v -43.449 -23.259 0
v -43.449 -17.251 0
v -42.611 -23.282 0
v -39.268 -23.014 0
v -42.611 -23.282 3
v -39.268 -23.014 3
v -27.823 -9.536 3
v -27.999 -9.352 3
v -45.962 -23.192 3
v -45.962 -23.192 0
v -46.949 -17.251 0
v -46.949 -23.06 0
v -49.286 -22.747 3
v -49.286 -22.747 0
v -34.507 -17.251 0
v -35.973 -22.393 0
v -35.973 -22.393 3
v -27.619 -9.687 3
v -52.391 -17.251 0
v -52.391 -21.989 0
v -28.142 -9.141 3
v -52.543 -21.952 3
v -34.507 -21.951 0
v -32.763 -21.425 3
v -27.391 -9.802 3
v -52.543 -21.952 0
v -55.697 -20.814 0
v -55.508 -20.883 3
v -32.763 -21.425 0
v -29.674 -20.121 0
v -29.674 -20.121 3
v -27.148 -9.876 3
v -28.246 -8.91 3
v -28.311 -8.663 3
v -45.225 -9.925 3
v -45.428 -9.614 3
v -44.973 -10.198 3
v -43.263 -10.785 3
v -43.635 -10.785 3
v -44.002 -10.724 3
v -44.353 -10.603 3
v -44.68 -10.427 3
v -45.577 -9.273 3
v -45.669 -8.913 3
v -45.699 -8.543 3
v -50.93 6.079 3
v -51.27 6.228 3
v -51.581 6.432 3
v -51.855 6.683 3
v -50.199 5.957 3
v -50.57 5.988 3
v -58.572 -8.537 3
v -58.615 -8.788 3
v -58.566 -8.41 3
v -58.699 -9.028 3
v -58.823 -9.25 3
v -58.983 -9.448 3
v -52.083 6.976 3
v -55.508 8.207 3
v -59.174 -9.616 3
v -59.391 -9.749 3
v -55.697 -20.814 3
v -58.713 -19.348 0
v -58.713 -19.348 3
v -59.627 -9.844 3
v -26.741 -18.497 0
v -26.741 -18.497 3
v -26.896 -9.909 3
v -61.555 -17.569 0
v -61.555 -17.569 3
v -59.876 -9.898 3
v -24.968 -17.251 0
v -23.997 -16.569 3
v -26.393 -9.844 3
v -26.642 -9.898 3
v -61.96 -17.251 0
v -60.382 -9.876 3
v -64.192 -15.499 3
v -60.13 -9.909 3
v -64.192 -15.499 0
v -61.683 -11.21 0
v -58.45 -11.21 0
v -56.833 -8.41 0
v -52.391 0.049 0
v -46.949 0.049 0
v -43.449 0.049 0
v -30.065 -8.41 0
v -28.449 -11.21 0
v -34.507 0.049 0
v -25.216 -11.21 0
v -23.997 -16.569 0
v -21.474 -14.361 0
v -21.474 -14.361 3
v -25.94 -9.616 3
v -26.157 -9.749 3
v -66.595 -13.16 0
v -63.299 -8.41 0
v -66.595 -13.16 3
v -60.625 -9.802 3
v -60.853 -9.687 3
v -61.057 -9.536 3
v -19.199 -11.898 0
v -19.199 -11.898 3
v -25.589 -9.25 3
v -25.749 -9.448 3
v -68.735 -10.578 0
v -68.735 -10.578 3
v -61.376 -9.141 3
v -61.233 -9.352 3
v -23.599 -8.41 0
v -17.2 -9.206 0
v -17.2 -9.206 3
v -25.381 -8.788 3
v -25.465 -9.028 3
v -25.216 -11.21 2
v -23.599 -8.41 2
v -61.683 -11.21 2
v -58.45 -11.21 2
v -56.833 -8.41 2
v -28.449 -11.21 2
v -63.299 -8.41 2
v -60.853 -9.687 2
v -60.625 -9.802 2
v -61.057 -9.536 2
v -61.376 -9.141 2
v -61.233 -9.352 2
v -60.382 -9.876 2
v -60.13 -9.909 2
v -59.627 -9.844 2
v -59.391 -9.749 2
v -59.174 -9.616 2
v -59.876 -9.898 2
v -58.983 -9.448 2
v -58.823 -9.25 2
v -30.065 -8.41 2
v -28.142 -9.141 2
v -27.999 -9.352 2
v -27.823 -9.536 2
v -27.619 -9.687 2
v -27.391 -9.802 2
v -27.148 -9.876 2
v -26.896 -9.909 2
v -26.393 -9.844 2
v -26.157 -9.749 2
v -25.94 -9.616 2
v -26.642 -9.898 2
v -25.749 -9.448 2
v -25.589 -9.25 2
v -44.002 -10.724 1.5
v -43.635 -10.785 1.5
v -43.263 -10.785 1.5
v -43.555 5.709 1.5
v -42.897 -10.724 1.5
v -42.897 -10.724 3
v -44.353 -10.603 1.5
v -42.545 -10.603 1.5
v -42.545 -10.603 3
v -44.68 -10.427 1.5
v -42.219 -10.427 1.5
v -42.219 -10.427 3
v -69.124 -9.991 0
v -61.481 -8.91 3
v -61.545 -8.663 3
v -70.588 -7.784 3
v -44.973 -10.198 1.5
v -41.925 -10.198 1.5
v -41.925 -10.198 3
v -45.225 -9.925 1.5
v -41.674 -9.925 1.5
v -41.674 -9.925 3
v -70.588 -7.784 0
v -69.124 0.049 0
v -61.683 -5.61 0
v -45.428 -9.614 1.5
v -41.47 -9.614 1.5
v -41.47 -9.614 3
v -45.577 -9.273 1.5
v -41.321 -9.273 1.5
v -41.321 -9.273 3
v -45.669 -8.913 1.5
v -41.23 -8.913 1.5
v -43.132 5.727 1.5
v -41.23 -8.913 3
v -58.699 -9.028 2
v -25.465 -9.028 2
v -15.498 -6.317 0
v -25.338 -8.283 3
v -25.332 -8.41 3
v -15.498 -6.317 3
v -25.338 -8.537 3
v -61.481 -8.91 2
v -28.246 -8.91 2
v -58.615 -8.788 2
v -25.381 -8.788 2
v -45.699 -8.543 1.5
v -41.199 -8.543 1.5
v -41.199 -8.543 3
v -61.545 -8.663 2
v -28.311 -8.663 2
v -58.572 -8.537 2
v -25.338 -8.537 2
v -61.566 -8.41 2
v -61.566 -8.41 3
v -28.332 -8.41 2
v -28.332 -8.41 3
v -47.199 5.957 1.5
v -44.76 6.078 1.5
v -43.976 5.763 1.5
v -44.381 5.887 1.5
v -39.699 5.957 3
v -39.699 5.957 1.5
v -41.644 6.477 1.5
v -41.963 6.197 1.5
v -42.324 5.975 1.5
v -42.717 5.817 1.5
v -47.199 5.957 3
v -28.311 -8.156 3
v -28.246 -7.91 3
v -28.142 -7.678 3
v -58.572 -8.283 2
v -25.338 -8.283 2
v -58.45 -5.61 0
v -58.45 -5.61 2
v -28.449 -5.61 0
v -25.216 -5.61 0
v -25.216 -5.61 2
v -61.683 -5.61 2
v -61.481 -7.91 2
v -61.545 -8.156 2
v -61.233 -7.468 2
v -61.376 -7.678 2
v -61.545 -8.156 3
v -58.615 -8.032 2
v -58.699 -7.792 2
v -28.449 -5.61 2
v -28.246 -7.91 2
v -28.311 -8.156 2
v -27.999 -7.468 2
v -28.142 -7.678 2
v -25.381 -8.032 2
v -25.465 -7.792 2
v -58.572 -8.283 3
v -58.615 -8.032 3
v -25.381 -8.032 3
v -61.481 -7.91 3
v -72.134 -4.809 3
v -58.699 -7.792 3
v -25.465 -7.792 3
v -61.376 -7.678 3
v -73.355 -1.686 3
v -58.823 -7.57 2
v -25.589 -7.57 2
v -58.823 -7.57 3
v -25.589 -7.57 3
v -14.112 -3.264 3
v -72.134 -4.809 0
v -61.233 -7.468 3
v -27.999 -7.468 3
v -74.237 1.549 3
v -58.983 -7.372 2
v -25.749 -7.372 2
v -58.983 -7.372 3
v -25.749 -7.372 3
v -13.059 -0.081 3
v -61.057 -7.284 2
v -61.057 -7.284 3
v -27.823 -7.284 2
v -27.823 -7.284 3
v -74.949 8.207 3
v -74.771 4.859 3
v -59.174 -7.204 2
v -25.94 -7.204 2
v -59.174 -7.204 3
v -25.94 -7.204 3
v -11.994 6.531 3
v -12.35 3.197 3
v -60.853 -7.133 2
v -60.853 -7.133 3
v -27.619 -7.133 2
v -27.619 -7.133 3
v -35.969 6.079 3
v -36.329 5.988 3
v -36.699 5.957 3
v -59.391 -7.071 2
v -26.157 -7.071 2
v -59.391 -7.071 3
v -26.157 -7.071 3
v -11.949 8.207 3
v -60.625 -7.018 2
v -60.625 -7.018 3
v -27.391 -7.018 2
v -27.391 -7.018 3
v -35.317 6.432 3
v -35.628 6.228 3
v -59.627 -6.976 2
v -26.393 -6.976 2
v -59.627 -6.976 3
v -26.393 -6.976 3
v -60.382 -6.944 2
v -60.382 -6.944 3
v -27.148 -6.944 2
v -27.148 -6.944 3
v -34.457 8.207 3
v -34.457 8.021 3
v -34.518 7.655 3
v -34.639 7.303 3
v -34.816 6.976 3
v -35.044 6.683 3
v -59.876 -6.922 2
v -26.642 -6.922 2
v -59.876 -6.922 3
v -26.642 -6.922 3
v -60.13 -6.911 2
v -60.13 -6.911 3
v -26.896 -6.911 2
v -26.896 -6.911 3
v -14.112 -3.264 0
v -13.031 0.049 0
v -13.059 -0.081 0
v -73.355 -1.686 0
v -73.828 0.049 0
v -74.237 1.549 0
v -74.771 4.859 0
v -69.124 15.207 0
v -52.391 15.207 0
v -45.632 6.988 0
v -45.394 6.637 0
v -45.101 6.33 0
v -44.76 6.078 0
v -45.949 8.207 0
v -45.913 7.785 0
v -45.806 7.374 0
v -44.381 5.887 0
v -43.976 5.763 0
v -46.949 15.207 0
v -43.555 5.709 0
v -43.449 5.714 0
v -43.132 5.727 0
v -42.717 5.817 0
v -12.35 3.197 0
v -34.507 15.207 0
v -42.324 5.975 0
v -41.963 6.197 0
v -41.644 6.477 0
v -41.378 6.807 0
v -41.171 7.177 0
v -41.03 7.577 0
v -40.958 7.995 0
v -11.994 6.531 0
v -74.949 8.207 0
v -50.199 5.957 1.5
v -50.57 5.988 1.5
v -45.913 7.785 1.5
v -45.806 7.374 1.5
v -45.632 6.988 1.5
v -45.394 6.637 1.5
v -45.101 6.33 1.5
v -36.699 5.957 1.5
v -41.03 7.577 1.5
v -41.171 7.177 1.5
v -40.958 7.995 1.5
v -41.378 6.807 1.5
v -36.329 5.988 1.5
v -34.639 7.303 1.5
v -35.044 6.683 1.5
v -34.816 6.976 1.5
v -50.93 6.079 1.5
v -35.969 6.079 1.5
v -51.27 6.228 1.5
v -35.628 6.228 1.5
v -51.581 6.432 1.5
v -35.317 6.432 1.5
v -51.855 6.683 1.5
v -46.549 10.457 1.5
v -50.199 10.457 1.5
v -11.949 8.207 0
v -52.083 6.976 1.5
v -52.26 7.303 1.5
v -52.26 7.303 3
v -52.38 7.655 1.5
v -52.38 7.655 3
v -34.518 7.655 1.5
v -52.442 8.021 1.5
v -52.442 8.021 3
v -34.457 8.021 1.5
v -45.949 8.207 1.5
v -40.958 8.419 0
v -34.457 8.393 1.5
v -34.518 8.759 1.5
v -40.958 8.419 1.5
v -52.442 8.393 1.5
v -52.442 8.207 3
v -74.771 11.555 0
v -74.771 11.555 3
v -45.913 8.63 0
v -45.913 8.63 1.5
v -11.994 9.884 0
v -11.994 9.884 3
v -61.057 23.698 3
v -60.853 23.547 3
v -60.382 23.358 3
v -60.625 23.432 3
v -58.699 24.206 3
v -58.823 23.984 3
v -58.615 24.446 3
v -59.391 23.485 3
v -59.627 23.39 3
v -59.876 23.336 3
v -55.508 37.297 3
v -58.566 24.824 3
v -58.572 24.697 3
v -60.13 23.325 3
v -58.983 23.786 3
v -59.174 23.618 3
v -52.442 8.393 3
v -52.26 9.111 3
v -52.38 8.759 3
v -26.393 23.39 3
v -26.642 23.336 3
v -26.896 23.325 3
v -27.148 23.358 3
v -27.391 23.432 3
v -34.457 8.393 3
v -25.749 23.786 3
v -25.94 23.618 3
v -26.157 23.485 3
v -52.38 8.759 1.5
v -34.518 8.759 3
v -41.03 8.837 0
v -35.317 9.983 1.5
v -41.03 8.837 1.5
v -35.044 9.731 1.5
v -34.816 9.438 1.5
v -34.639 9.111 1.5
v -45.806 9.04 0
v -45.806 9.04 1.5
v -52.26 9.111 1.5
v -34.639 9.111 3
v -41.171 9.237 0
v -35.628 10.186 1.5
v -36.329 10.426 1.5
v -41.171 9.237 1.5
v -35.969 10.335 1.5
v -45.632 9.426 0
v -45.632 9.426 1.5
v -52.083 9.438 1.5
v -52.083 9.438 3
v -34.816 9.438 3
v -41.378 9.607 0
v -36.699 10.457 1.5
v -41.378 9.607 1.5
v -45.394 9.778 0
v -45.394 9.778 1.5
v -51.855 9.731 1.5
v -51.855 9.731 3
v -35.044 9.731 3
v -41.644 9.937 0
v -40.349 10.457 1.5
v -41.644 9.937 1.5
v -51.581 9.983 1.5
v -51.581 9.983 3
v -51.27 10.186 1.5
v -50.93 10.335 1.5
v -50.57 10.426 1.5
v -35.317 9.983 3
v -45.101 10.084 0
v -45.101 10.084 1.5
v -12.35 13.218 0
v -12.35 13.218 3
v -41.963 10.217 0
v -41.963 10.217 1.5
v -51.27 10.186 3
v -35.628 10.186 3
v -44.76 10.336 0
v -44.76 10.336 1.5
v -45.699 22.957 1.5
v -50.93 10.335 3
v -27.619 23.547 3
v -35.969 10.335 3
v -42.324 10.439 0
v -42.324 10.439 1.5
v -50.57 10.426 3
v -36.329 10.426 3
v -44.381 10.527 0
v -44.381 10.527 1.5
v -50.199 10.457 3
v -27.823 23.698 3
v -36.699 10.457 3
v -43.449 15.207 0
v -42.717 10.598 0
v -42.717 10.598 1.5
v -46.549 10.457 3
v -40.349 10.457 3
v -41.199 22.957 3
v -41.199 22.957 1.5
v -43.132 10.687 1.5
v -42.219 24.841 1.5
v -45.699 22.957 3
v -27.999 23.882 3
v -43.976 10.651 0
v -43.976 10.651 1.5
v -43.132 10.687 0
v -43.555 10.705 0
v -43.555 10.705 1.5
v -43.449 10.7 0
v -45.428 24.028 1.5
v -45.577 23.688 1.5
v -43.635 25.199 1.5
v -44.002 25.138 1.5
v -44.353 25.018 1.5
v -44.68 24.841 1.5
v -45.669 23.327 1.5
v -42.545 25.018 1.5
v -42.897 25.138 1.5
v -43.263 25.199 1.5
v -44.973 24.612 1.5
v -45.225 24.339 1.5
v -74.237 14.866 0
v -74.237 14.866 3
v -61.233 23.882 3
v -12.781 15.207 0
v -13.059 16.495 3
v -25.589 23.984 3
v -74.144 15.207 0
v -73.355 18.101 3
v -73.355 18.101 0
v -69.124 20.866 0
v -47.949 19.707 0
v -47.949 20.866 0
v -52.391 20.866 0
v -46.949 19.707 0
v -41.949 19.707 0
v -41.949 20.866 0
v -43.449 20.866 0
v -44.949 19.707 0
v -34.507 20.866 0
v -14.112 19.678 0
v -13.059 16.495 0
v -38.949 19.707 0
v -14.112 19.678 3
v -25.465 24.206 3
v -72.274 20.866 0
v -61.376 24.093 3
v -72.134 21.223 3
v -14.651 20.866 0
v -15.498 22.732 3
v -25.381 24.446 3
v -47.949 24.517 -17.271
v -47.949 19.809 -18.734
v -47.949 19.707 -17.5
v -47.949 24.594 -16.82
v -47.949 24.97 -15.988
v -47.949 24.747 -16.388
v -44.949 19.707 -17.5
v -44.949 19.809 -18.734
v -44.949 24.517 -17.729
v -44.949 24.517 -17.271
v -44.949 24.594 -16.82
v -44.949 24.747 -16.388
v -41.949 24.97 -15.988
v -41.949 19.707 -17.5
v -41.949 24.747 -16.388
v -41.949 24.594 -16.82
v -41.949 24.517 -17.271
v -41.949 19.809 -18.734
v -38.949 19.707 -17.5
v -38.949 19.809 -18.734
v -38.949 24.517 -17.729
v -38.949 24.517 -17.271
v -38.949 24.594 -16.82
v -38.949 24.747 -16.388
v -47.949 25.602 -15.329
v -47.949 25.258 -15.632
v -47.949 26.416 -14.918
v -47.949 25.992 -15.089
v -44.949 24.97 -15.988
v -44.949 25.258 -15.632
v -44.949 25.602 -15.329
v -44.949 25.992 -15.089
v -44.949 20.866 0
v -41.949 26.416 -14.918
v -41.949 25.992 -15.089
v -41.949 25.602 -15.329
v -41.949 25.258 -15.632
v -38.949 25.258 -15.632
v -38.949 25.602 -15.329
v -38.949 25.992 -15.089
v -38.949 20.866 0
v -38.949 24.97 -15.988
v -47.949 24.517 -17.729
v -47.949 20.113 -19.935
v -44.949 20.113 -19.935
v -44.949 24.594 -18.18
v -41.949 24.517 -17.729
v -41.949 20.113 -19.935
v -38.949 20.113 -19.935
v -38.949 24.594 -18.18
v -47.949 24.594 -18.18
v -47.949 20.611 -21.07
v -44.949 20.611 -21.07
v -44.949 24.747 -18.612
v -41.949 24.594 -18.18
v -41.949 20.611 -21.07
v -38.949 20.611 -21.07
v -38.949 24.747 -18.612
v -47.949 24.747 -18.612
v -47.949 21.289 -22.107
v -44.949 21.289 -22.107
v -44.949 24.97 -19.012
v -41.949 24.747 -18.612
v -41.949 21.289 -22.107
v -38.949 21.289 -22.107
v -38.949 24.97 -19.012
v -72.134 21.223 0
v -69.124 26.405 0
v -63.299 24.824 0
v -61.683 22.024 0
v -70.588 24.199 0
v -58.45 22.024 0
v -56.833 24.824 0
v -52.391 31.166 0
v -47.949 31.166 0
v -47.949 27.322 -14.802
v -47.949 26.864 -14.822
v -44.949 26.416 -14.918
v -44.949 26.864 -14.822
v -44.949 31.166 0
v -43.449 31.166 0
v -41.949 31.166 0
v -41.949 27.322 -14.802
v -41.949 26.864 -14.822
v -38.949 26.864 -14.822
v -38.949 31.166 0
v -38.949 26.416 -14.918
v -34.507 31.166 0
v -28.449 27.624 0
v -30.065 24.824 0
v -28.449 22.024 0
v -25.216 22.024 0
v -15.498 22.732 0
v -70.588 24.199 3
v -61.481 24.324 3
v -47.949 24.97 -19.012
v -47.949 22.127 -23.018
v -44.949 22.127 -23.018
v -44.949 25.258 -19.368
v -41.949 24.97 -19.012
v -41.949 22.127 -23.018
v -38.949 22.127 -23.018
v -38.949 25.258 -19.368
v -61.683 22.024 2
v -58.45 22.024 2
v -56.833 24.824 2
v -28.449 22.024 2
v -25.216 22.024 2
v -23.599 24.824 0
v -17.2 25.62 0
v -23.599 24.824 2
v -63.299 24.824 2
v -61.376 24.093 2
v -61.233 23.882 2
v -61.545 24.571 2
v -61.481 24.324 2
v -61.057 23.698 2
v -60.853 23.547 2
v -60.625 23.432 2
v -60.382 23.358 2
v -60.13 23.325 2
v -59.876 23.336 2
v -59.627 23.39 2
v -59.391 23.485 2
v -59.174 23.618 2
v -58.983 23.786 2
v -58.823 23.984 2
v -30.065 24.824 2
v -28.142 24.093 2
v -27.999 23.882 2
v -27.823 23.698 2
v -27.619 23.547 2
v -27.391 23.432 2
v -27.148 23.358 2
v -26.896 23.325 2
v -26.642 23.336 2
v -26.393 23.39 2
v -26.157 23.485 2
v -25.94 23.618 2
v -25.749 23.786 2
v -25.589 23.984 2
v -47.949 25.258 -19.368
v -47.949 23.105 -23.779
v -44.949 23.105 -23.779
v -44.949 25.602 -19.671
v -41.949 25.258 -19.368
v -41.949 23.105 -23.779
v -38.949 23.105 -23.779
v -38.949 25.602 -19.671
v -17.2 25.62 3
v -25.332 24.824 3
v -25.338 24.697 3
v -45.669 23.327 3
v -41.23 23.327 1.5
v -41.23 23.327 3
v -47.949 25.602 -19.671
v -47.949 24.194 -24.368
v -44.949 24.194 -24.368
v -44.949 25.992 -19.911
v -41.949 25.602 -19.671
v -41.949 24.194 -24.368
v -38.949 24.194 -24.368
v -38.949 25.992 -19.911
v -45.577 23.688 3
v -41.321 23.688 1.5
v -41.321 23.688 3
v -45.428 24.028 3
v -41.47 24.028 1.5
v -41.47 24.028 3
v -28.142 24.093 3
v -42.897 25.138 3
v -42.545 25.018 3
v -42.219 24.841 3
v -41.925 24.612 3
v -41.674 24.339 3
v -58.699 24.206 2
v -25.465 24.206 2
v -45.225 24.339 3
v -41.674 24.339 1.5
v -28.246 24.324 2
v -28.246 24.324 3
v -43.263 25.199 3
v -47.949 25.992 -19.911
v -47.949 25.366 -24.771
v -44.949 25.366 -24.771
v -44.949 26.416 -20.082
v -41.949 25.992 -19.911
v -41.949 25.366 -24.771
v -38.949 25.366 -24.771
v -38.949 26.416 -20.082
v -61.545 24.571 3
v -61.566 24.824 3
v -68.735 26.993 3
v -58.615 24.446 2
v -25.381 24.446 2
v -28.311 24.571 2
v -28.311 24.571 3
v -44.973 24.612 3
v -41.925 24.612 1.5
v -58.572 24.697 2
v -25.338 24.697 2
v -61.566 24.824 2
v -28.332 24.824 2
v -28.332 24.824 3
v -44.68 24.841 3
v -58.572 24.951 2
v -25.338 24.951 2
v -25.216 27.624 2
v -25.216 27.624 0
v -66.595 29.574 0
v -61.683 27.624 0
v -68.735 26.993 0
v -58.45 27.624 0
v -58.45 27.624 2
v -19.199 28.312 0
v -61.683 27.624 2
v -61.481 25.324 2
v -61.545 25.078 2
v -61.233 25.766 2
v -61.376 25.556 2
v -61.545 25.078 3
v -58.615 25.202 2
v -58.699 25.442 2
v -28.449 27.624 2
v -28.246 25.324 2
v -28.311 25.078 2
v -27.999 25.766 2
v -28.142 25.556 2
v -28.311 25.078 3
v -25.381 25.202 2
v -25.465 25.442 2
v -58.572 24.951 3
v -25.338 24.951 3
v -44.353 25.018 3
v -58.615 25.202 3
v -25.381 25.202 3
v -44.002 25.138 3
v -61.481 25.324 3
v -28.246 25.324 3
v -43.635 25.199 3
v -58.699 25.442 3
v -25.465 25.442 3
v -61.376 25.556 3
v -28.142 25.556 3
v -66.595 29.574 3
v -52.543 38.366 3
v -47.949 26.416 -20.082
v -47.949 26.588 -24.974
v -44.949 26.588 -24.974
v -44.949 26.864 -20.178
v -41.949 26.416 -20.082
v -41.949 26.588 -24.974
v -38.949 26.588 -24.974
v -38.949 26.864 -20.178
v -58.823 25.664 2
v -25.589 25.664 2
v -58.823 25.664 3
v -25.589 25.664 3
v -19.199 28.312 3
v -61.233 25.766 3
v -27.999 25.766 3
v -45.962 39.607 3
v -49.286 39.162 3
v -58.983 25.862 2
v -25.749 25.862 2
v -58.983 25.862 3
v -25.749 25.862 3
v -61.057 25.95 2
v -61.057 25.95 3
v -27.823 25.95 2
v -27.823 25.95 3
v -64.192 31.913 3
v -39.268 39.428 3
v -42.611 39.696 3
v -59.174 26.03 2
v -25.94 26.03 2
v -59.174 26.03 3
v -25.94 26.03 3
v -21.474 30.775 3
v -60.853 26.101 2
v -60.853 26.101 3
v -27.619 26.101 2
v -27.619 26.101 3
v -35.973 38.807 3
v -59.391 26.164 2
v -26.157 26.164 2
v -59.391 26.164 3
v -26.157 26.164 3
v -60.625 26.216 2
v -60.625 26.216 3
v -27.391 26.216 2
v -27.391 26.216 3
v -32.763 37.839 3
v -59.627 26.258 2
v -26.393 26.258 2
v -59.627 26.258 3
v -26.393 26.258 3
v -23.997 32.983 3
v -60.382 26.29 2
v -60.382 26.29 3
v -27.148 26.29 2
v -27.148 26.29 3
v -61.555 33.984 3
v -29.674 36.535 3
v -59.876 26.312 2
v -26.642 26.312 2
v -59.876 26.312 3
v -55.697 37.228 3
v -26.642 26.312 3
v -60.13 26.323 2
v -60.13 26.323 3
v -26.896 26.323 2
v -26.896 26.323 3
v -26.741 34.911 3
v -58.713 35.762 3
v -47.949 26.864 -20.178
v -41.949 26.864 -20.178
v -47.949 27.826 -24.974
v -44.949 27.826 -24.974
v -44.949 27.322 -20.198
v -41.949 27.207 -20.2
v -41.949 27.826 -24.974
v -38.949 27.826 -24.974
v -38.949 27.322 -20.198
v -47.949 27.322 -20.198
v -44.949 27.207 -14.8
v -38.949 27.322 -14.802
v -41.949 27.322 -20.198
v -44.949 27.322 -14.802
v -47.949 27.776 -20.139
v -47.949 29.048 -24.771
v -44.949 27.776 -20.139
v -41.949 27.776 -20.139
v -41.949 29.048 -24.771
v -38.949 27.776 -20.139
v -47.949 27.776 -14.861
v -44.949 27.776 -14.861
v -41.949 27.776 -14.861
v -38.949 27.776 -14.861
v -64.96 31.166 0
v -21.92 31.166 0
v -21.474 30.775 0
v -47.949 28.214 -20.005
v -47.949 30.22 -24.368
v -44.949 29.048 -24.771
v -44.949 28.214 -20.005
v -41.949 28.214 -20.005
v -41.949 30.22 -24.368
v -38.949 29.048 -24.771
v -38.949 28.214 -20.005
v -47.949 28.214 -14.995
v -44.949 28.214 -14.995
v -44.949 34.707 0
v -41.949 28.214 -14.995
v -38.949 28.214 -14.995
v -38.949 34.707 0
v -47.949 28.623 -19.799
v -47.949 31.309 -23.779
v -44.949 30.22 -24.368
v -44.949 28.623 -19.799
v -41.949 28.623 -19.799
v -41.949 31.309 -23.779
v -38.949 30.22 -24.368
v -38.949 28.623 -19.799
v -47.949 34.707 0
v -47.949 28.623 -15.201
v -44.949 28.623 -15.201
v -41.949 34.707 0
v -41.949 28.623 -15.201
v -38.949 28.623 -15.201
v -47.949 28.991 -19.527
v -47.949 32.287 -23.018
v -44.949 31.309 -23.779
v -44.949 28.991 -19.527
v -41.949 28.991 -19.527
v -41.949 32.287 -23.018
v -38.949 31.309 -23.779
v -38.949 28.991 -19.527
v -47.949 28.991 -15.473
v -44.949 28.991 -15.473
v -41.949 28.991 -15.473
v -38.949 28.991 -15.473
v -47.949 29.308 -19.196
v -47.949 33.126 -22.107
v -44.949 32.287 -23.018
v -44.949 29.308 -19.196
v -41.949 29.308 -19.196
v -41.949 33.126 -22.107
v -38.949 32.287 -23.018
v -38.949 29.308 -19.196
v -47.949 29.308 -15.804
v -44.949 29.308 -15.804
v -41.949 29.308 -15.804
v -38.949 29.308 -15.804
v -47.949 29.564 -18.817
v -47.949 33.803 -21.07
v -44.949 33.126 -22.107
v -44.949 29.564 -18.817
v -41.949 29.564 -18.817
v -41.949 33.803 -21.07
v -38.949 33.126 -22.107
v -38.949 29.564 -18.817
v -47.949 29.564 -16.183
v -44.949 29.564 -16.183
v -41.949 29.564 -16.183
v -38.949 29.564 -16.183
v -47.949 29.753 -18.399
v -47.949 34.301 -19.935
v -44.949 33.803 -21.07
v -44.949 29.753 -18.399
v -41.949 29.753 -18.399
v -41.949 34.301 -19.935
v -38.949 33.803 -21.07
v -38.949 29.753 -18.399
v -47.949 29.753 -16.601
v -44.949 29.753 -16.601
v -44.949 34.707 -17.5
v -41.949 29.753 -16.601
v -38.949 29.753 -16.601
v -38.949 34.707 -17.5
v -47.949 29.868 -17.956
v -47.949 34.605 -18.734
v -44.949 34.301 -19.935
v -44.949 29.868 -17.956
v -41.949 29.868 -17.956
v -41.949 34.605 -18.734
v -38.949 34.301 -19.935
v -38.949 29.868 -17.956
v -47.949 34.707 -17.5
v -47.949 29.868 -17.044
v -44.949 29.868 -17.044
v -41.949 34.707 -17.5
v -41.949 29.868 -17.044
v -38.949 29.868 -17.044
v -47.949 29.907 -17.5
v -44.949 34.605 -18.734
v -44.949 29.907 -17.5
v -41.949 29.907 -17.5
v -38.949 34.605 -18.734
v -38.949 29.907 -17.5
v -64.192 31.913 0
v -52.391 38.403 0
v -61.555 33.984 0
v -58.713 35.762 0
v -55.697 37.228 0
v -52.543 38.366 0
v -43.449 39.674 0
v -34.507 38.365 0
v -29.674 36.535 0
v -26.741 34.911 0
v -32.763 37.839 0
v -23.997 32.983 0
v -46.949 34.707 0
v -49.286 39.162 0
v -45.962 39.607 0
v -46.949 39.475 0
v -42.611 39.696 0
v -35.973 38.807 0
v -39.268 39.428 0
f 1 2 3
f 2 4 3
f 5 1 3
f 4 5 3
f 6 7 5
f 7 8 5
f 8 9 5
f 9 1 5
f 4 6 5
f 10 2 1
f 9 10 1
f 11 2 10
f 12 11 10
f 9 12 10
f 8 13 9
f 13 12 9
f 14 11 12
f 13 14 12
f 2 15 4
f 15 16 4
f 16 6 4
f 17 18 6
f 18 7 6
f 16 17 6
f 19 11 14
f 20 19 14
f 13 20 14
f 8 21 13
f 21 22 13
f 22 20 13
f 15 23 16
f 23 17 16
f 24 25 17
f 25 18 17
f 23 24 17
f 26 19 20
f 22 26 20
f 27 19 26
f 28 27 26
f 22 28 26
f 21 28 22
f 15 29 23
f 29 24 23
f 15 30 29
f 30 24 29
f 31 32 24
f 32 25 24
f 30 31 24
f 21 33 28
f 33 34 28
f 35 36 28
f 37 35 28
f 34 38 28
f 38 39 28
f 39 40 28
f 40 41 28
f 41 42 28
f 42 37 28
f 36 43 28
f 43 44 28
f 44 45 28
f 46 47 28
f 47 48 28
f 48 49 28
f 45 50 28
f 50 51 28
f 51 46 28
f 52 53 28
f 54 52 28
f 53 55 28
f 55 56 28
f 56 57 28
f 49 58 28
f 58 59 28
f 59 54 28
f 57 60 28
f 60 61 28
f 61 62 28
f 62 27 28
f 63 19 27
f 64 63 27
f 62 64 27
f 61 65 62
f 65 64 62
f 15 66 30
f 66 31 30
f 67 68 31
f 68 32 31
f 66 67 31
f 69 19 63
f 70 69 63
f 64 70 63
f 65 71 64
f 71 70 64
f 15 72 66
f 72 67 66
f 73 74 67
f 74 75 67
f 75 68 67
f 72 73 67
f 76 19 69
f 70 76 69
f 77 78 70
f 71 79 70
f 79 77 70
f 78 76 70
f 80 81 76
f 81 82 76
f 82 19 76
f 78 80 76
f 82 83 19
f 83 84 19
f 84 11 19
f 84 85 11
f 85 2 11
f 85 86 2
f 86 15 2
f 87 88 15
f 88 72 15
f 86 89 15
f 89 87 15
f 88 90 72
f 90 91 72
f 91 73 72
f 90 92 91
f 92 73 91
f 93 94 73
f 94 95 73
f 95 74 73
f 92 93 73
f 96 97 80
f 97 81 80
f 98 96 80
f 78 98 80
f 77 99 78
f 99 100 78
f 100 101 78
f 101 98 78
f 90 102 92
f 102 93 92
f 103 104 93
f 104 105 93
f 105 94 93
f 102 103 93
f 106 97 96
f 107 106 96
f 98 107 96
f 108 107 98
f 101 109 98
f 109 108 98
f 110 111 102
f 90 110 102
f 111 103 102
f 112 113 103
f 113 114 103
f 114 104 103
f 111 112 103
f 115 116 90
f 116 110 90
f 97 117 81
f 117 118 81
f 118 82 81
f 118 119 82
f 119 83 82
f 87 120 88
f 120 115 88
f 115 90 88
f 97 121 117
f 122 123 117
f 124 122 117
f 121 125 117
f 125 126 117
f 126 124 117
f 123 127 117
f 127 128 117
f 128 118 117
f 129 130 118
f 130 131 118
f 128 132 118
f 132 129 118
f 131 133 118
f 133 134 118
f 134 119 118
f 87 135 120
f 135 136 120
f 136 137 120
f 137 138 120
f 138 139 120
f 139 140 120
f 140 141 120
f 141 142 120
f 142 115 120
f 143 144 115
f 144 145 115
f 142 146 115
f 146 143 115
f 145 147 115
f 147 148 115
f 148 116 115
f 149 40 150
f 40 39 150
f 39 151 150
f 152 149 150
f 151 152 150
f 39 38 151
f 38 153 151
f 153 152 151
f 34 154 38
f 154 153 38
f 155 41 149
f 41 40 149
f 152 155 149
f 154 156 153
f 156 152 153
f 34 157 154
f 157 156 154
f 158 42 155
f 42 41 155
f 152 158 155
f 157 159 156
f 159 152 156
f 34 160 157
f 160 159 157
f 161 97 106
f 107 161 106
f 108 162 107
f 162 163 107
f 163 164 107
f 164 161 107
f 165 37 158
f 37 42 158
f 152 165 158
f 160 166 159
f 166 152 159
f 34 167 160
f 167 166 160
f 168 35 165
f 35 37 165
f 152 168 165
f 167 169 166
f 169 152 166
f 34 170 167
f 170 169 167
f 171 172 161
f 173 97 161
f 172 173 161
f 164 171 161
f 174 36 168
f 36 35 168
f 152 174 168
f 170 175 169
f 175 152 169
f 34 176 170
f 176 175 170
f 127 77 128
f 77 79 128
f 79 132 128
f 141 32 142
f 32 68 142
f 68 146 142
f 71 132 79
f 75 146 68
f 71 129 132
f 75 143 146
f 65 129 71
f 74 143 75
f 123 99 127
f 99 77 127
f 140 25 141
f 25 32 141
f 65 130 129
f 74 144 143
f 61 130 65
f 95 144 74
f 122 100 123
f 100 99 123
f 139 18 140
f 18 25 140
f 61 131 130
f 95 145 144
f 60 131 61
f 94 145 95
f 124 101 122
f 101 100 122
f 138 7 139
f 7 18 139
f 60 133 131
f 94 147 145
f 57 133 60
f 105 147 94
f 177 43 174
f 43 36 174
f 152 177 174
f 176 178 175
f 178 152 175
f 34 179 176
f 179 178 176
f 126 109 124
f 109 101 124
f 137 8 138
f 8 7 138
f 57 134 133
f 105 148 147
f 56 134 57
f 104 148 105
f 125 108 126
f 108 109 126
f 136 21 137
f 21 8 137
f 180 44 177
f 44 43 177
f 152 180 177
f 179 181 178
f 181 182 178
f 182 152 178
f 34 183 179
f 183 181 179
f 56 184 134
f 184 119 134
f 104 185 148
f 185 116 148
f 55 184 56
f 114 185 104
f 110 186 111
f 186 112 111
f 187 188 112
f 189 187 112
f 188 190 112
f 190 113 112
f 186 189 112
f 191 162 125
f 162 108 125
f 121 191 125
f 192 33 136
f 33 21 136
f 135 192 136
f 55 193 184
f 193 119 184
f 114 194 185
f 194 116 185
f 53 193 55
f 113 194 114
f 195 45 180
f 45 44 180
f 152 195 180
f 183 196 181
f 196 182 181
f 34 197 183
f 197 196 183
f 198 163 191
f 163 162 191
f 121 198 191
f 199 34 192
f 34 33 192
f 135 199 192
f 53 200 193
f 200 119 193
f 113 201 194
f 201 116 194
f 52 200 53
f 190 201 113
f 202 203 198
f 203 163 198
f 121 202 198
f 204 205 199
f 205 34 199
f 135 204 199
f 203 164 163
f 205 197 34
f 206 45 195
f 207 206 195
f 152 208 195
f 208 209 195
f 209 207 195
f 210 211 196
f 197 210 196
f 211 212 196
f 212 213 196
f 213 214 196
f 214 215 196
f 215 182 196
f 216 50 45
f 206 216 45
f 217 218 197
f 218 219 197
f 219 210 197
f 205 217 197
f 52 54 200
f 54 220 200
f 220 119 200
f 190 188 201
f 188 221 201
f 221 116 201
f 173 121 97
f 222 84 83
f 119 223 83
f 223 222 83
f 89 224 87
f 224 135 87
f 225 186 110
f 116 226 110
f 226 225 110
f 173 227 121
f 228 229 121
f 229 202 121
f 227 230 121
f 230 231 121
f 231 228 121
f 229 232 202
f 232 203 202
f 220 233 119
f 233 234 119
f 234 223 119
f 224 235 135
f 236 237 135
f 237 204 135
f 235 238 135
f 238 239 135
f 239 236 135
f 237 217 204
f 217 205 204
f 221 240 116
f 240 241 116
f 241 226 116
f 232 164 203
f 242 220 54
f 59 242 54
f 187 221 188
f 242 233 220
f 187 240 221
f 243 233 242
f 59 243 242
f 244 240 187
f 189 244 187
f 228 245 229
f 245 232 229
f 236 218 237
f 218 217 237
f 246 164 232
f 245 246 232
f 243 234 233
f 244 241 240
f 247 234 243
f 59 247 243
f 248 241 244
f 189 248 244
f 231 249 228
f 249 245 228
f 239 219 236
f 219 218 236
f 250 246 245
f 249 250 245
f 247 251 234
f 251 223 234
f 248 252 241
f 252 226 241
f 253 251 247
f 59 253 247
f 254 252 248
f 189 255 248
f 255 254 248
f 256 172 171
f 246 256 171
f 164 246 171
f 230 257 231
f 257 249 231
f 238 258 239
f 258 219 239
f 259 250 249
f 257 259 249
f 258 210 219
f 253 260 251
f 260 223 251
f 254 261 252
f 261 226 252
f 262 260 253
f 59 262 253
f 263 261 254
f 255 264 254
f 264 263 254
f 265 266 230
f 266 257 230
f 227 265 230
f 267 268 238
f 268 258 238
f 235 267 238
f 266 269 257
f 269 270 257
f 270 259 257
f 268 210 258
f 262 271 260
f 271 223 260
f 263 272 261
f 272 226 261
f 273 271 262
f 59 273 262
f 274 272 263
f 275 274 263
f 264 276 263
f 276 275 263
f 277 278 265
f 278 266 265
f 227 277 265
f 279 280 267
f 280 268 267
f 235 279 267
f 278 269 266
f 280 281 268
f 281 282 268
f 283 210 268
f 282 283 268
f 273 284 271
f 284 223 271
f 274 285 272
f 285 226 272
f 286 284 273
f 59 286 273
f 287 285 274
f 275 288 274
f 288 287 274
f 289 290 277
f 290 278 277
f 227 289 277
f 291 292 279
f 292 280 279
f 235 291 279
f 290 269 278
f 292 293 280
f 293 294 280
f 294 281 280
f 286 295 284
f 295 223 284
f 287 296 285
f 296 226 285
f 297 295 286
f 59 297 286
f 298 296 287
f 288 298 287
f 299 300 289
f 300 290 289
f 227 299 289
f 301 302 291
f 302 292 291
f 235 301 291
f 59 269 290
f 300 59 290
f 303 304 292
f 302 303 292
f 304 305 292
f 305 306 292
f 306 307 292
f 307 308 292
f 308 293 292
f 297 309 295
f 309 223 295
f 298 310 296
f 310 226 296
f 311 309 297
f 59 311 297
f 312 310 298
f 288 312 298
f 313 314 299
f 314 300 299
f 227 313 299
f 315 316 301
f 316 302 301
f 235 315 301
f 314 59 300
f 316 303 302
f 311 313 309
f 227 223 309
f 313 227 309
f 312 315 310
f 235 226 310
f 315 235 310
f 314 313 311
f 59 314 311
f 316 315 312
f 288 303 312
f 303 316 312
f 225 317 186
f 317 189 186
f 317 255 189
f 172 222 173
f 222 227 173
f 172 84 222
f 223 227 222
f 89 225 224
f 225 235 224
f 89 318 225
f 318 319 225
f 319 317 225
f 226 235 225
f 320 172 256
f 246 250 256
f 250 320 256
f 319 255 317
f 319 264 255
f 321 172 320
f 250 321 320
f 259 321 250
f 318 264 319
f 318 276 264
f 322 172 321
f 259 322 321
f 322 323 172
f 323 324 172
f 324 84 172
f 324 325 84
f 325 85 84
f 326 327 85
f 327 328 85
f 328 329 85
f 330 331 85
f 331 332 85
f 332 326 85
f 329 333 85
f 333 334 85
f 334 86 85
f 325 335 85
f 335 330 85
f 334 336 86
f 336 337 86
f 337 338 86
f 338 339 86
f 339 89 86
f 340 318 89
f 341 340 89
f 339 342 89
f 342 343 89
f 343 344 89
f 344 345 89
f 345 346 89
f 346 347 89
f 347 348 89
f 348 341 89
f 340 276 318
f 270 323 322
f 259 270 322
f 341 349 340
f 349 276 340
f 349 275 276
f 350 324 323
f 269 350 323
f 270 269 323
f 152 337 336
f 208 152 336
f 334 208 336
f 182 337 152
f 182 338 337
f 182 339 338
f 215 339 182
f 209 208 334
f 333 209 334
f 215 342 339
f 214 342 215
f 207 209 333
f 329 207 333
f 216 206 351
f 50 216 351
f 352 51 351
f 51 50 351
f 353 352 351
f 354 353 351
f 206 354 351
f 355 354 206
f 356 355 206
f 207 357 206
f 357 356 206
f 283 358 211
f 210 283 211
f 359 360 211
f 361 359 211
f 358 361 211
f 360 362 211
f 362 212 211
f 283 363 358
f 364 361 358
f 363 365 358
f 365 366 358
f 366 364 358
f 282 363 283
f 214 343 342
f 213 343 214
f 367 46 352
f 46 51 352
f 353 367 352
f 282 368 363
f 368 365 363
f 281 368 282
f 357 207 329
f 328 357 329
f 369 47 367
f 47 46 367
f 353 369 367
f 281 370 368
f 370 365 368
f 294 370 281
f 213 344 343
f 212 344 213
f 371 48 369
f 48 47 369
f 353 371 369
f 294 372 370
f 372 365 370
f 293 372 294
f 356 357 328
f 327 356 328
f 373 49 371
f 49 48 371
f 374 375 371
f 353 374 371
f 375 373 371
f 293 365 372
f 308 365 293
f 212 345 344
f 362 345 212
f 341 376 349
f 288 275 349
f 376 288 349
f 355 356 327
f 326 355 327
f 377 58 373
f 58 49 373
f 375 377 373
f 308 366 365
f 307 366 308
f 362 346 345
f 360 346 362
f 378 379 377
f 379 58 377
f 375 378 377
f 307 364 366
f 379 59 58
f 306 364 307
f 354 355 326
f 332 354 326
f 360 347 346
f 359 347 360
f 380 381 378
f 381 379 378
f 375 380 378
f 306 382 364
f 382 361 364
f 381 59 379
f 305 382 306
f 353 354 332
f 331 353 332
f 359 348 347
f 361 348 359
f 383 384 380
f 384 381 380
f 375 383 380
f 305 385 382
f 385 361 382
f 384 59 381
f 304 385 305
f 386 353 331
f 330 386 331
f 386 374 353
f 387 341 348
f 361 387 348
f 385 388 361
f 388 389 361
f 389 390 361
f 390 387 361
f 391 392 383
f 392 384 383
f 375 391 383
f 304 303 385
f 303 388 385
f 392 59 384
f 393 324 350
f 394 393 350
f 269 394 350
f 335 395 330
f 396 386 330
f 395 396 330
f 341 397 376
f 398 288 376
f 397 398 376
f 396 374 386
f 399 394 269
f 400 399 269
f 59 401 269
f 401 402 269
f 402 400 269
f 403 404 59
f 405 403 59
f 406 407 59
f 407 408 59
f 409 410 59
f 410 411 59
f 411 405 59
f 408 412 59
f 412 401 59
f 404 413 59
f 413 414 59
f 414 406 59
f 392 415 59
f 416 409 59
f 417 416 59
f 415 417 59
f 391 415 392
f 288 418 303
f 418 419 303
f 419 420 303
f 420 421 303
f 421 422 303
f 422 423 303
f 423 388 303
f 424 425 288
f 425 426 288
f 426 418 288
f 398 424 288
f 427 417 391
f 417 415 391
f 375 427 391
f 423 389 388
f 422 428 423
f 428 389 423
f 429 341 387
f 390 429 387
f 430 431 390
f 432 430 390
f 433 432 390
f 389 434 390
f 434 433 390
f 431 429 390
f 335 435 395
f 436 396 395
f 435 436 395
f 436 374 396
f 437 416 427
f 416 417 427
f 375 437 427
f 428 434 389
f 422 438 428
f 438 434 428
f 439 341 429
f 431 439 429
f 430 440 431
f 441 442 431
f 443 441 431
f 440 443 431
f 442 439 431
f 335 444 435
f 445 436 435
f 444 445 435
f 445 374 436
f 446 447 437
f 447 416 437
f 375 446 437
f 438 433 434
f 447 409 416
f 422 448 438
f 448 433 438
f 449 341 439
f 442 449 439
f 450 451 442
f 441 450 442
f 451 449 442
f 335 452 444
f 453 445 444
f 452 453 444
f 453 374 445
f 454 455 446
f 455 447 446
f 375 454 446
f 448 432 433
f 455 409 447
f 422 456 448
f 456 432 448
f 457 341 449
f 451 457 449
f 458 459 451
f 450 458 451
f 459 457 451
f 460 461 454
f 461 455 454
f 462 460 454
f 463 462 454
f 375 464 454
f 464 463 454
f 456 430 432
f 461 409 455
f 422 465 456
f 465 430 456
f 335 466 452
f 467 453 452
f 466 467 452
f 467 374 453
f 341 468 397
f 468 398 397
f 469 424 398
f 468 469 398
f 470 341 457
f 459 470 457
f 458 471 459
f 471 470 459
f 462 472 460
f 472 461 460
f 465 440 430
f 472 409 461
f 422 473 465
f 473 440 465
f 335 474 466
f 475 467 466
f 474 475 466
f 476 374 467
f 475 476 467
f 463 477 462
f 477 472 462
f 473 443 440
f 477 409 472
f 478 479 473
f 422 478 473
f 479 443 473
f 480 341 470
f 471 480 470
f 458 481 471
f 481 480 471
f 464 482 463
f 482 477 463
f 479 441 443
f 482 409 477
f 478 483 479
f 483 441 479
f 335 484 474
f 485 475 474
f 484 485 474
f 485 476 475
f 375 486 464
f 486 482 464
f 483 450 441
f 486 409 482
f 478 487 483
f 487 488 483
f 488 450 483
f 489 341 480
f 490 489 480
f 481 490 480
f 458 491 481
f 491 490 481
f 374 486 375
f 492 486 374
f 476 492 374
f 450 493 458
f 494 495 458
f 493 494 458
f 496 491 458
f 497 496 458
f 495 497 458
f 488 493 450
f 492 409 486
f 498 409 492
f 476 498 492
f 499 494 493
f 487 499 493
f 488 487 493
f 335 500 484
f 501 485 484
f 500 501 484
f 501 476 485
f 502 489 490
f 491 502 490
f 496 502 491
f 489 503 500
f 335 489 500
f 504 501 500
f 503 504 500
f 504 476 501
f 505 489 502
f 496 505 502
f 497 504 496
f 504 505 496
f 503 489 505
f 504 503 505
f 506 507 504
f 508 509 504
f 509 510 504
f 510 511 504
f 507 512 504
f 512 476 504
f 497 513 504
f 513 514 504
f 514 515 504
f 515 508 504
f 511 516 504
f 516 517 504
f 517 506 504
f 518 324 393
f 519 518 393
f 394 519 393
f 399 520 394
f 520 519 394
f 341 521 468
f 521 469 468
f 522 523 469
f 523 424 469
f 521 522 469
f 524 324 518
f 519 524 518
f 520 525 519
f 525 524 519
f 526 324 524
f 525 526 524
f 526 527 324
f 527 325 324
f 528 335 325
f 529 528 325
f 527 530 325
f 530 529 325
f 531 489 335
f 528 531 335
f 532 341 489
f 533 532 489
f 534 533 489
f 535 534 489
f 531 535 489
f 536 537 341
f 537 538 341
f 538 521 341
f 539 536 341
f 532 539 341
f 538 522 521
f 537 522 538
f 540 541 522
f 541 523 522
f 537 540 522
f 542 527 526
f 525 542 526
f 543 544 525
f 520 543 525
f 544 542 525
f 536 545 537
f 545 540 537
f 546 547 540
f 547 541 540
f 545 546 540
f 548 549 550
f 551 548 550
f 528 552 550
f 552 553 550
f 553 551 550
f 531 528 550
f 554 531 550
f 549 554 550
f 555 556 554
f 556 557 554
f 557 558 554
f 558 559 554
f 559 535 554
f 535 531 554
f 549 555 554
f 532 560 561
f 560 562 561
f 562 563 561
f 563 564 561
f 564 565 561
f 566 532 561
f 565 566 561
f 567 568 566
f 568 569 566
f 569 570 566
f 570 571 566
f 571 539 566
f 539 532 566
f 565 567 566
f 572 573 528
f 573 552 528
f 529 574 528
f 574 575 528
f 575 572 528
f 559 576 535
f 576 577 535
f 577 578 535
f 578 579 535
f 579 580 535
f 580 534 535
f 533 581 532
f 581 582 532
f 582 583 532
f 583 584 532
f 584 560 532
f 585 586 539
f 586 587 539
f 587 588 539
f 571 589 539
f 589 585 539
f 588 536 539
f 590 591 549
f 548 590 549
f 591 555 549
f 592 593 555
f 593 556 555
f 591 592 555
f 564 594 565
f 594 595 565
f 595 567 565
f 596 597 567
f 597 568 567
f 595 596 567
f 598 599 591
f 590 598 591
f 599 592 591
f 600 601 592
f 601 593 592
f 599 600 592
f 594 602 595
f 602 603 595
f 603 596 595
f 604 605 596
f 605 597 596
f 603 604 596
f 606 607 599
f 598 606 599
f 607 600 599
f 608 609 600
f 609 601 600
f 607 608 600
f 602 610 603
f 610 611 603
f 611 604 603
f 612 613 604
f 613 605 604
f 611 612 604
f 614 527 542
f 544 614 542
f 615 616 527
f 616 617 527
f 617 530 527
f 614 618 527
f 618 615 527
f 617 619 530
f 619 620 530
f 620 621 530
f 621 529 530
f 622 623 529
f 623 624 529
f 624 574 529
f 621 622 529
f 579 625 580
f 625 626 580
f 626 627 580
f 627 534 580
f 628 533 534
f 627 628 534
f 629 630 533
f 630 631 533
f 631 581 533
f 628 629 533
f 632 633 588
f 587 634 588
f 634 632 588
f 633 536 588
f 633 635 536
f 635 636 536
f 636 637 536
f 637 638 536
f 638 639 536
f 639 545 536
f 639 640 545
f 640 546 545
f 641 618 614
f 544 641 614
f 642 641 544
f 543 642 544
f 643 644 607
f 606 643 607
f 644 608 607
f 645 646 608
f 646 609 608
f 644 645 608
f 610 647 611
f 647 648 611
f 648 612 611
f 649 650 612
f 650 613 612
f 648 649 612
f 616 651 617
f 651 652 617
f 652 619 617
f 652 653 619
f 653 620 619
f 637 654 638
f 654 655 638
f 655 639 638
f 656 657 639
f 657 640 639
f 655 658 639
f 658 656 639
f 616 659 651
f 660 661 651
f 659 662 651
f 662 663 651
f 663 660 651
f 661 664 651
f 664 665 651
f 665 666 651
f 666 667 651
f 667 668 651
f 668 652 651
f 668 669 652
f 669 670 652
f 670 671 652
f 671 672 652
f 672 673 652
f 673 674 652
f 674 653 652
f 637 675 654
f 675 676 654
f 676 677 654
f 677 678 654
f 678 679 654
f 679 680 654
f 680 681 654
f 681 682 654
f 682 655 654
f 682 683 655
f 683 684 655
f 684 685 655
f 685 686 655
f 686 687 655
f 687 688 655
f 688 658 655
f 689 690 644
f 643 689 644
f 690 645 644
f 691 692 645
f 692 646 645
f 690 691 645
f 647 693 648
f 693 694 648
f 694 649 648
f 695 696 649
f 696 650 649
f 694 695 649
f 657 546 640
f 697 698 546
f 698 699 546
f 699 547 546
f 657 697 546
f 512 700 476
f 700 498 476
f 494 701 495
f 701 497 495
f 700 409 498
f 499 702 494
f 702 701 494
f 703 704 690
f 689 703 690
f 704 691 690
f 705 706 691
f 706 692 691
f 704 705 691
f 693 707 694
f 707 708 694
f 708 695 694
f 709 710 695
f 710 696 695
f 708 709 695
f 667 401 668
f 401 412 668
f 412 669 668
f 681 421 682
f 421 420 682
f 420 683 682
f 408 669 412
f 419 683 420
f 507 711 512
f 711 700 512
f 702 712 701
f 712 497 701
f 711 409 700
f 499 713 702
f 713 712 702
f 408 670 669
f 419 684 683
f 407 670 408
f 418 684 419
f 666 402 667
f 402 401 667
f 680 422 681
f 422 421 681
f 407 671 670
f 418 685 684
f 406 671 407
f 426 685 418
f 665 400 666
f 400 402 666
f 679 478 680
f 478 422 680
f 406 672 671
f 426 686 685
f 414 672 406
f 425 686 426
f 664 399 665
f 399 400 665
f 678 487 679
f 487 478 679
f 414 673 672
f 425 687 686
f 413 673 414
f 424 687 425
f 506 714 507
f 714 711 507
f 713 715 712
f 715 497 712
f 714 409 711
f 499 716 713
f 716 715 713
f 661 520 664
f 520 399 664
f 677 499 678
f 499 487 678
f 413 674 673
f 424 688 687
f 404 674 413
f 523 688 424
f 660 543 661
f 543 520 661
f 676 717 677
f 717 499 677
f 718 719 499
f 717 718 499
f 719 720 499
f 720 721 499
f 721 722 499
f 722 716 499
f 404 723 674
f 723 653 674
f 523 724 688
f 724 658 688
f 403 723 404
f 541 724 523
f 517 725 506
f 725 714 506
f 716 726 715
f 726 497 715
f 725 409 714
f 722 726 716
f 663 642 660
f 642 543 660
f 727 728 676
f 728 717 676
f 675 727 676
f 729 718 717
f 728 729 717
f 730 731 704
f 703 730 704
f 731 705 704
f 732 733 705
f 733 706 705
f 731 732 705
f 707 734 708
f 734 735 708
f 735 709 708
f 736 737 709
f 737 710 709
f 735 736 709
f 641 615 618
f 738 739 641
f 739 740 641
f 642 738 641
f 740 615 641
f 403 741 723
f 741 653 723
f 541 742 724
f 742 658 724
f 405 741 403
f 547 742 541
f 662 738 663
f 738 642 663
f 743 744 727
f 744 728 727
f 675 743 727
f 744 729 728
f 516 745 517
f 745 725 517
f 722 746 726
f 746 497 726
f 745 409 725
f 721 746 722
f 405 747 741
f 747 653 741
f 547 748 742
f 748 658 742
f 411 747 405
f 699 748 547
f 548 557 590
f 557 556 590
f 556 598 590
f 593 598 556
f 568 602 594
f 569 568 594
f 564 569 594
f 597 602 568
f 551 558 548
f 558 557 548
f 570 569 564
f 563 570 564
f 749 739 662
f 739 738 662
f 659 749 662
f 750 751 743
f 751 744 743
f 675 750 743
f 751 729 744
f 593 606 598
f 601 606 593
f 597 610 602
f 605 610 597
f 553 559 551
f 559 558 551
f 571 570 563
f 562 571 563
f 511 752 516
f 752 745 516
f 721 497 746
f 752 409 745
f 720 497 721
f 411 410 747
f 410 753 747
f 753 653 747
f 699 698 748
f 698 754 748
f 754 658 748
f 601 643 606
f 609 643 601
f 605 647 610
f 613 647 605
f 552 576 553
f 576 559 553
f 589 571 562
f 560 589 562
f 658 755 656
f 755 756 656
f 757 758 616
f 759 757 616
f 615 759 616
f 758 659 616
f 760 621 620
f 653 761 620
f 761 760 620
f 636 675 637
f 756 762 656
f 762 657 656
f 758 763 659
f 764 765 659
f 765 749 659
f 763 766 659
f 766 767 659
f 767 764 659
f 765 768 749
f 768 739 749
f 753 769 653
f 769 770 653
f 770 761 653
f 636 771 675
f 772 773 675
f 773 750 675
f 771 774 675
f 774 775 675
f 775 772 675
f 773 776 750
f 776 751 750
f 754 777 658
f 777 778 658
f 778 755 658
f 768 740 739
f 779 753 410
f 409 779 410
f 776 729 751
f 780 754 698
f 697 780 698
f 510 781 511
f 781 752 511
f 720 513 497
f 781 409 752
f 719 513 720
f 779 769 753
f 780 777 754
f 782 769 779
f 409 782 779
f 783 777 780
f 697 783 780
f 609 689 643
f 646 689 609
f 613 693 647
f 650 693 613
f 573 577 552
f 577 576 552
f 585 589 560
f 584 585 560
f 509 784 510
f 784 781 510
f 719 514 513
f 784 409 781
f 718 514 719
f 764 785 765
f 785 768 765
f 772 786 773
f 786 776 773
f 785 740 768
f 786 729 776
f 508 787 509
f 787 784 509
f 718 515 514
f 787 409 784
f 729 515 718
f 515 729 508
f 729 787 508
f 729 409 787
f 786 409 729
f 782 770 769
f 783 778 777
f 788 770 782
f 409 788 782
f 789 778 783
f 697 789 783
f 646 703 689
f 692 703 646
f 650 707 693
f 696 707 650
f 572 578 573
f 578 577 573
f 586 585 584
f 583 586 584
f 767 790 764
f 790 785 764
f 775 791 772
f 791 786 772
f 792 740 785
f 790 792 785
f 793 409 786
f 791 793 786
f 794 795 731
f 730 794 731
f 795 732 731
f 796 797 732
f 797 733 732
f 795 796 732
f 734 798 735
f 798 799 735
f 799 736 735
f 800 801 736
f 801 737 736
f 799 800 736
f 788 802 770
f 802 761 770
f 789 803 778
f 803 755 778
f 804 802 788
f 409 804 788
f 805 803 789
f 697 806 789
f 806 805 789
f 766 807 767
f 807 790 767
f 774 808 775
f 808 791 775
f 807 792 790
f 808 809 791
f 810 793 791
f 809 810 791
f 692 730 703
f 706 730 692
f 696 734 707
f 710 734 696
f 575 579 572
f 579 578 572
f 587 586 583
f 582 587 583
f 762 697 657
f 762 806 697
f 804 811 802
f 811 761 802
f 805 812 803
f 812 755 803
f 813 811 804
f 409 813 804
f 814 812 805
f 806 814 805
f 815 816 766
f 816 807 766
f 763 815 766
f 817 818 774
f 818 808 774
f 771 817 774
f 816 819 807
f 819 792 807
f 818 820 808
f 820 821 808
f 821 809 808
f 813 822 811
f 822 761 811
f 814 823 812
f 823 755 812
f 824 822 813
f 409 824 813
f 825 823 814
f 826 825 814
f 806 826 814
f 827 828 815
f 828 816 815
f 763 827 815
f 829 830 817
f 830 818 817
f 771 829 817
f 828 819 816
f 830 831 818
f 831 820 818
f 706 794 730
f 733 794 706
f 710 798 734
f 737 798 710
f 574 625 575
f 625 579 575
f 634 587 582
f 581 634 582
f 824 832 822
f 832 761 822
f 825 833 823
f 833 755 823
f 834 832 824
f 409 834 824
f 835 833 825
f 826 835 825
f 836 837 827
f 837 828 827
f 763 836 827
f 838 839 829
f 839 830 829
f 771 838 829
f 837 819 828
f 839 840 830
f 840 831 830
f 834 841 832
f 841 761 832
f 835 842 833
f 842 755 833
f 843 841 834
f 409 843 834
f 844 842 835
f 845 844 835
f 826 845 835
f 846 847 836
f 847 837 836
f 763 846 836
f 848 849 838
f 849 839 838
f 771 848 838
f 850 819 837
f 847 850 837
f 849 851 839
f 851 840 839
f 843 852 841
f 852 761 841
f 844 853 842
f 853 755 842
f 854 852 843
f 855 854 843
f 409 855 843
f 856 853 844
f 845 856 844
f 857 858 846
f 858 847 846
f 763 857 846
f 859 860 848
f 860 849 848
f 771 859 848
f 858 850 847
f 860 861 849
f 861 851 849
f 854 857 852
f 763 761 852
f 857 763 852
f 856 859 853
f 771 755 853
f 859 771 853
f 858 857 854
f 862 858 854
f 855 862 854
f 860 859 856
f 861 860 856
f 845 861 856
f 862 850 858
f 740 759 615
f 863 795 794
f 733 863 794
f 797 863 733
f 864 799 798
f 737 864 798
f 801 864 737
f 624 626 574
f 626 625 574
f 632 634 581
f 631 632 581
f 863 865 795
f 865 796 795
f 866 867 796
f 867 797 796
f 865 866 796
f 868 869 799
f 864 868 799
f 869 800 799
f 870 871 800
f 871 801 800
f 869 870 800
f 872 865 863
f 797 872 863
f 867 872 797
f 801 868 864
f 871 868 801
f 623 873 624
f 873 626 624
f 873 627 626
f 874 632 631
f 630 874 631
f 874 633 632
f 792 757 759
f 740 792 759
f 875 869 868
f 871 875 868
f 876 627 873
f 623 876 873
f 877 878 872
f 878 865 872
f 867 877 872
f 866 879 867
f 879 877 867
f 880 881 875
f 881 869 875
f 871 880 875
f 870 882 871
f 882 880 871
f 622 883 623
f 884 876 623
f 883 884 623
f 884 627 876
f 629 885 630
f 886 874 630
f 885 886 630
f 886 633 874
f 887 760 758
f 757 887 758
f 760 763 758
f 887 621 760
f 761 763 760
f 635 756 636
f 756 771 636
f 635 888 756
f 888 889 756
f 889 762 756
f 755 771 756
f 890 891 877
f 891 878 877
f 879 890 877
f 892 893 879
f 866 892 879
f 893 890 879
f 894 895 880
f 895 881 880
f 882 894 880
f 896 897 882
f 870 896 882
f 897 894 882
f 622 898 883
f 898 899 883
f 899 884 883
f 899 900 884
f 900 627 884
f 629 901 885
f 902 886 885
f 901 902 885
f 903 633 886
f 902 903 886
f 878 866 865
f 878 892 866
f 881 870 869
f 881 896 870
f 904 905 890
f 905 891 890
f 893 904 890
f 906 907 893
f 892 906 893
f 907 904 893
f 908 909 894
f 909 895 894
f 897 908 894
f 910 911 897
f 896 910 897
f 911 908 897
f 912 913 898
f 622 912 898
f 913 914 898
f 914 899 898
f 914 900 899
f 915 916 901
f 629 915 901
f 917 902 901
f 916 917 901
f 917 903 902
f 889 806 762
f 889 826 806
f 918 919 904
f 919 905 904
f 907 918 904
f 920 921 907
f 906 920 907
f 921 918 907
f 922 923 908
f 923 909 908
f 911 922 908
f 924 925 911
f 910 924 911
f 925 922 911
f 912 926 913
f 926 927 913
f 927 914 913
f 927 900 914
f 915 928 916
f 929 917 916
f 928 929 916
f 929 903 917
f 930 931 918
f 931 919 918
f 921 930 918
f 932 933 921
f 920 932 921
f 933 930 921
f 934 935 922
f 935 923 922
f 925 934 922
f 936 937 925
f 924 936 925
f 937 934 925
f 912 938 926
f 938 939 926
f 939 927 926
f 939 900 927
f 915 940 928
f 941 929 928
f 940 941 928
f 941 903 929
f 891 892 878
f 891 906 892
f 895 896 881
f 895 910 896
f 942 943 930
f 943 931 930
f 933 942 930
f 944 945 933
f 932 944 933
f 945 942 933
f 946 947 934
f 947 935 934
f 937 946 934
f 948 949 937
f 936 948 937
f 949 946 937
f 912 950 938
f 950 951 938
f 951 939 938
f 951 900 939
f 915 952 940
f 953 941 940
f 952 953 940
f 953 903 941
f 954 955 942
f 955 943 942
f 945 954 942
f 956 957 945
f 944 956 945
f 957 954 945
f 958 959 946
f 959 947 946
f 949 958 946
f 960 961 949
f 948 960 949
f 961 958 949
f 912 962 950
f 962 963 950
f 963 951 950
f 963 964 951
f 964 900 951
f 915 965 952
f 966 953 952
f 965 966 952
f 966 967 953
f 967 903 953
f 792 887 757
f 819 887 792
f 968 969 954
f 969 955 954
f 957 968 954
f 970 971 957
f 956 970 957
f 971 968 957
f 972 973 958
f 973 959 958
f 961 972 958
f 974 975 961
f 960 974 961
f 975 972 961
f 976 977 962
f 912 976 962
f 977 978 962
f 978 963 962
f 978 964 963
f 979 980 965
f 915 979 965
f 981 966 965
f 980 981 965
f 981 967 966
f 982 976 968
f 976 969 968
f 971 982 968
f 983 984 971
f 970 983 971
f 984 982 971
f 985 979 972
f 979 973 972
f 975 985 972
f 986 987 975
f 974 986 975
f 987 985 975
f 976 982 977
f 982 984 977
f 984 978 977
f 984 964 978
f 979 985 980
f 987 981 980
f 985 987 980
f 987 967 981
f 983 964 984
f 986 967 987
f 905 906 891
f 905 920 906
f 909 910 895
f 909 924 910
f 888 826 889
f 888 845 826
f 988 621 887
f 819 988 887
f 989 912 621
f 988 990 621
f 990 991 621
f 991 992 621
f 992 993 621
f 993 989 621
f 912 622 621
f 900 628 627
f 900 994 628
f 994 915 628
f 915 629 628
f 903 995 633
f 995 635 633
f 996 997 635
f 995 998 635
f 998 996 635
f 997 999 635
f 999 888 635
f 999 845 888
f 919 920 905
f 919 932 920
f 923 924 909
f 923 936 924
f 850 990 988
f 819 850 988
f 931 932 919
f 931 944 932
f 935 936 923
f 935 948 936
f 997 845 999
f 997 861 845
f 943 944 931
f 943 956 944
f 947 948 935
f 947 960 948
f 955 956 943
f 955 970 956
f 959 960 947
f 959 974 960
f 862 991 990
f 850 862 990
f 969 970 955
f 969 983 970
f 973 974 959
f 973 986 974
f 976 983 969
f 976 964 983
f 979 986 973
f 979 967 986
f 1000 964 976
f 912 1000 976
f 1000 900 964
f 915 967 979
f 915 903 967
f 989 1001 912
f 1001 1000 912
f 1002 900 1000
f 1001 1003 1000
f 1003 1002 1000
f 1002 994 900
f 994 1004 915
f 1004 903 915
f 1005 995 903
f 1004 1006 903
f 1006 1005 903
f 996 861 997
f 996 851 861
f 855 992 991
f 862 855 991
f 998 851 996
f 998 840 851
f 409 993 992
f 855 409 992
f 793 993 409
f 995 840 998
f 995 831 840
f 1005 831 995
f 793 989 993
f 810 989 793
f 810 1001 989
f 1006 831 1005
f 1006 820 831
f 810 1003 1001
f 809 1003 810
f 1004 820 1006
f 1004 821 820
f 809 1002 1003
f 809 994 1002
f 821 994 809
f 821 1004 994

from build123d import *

# Parameters (mm, degrees)
CROQUIS1_R              = 31.5
CROQUIS1_R_2            = 1.5
SALIENTE_EXTRUIR1_DEPTH = 3
CORTAR_EXTRUIR2_DEPTH   = 1.5
CROQUIS4_R              = 2.5
CORTAR_EXTRUIR3_DEPTH   = 3
CROQUIS5_W              = 3
CROQUIS5_H              = 15
SALIENTE_EXTRUIR2_DEPTH = 25
CORTAR_EXTRUIR4_START   = -9
CROQUIS6_R              = 2.7
CORTAR_EXTRUIR4_DEPTH   = 9
CORTAR_EXTRUIR5_DEPTH   = 2


with BuildPart() as part:
    # Croquis1 → Saliente-Extruir1 (new body)
    with BuildSketch(Plane.XY):
        with Locations((-43.449193048, 8.207110309)):
            Circle(CROQUIS1_R)
        with Locations((-60.066202406, 24.824119667)):
            Circle(CROQUIS1_R_2, mode=Mode.SUBTRACT)
        with Locations((-26.83218369, 24.824119667)):
            Circle(CROQUIS1_R_2, mode=Mode.SUBTRACT)
        with Locations((-26.83218369, -8.409899049)):
            Circle(CROQUIS1_R_2, mode=Mode.SUBTRACT)
        with Locations((-60.066202406, -8.409899049)):
            Circle(CROQUIS1_R_2, mode=Mode.SUBTRACT)
    extrude(amount=SALIENTE_EXTRUIR1_DEPTH)

    # Croquis3 → Cortar-Extruir2 (cut)
    with BuildSketch(Plane.XY.offset(3)):
        with BuildLine():
            Line((-41.199193048, 22.957110309), (-40.349193048, 10.457110309))
            Line((-40.349193048, 10.457110309), (-36.699193048, 10.457110309))
            ThreePointArc((-36.699193048, 10.457110309), (-34.449193048, 8.207110309), (-36.699193048, 5.957110309))
            Line((-36.699193048, 5.957110309), (-39.699193048, 5.957110309))
            Line((-39.699193048, 5.957110309), (-41.199193048, -8.542889691))
            ThreePointArc((-41.199193048, -8.542889691), (-43.449193048, -10.792889691), (-45.699193048, -8.542889691))
            Line((-45.699193048, -8.542889691), (-47.199193048, 5.957110309))
            Line((-47.199193048, 5.957110309), (-50.199193048, 5.957110309))
            ThreePointArc((-50.199193048, 5.957110309), (-52.449193048, 8.207110309), (-50.199193048, 10.457110309))
            Line((-50.199193048, 10.457110309), (-46.549193048, 10.457110309))
            Line((-46.549193048, 10.457110309), (-45.699193048, 22.957110309))
            ThreePointArc((-45.699193048, 22.957110309), (-43.449193048, 25.207110309), (-41.199193048, 22.957110309))
        make_face()
    extrude(amount=-CORTAR_EXTRUIR2_DEPTH, mode=Mode.SUBTRACT)

    # Croquis4 → Cortar-Extruir3 (cut)
    with BuildSketch(Plane(origin=(0, 0, 0), x_dir=(-1, 0, 0), z_dir=(0, 0, -1))):
        with Locations((43.449193048, 8.207110309)):
            Circle(CROQUIS4_R)
    extrude(amount=-CORTAR_EXTRUIR3_DEPTH, mode=Mode.SUBTRACT)

    # Croquis5 → Saliente-Extruir2 (add)
    with BuildSketch(Plane(origin=(0, 0, 0), x_dir=(-1, 0, 0), z_dir=(0, 0, -1))):
        with Locations((40.449193048, 27.207110309)):
            Rectangle(CROQUIS5_W, CROQUIS5_H)
        with Locations((46.449193048, 27.207110309)):
            Rectangle(CROQUIS5_W, CROQUIS5_H)
    extrude(amount=SALIENTE_EXTRUIR2_DEPTH)

    # Croquis6 → Cortar-Extruir4 (cut)
    with BuildSketch(Plane(origin=(-38.949193048, 0, 0), x_dir=(0, 0, -1), z_dir=(1, 0, 0)).offset(CORTAR_EXTRUIR4_START)):
        with BuildLine():
            Line((25, 34.707110309), (17.5, 34.707110309))
            ThreePointArc((17.5, 34.707110309), (22.803300859, 32.510411168), (25, 27.207110309))
            Line((25, 27.207110309), (25, 34.707110309))
        make_face()
        with BuildLine():
            Line((25, 19.707110309), (25, 27.207110309))
            ThreePointArc((25, 27.207110309), (22.803300859, 21.90380945), (17.5, 19.707110309))
            Line((17.5, 19.707110309), (25, 19.707110309))
        make_face()
        with Locations(Location((17.5, 27.207110309, 0), (0, 0, 90))):
            Circle(CROQUIS6_R)
    extrude(amount=CORTAR_EXTRUIR4_DEPTH, mode=Mode.SUBTRACT)

    # Croquis7 → Cortar-Extruir5 (cut)
    with BuildSketch(Plane(origin=(0, 0, 0), x_dir=(-1, 0, 0), z_dir=(0, 0, -1))):
        Polygon((30.065345197, 24.824119667), (28.448764443, 27.624119667), (25.215602936, 27.624119667), (23.599022182, 24.824119667), (25.215602936, 22.024119667), (28.448764443, 22.024119667), align=None)
        Polygon((63.299363913, 24.824119667), (61.682783159, 27.624119667), (58.449621652, 27.624119667), (56.833040898, 24.824119667), (58.449621652, 22.024119667), (61.682783159, 22.024119667), align=None)
        Polygon((30.065345197, -8.409899049), (28.448764443, -5.609899049), (25.215602936, -5.609899049), (23.599022182, -8.409899049), (25.215602936, -11.209899049), (28.448764443, -11.209899049), align=None)
        Polygon((56.833040898, -8.409899049), (58.449621652, -11.209899049), (61.682783159, -11.209899049), (63.299363913, -8.409899049), (61.682783159, -5.609899049), (58.449621652, -5.609899049), align=None)
    extrude(amount=-CORTAR_EXTRUIR5_DEPTH, mode=Mode.SUBTRACT)


solid = part.part
